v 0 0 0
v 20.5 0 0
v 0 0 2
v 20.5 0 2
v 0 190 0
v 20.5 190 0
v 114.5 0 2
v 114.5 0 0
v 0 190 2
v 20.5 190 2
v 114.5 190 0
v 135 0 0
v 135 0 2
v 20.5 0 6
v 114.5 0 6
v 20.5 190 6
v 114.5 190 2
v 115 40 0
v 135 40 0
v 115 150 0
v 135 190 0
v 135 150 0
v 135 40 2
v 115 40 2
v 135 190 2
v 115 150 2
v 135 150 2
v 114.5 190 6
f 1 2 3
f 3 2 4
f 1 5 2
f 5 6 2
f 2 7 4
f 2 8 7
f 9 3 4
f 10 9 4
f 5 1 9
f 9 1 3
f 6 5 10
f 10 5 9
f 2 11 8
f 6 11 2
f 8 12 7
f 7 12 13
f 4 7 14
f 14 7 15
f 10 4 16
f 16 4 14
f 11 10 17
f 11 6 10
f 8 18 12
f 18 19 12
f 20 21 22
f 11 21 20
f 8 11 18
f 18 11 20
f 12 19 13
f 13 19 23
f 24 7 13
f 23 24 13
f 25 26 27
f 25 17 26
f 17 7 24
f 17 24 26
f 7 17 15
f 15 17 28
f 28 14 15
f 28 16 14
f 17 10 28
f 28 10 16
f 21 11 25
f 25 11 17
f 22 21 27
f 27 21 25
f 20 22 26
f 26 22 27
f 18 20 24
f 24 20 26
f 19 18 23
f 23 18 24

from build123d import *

# Parameters (mm, degrees)
PAD_DEPTH    = 2
SKETCH004_W  = 94
SKETCH004_H  = 190
PAD001_DEPTH = 6


with BuildPart() as part:
    # Sketch001 → Pad (new body)
    with BuildSketch(Plane.XY):
        Polygon((0, 0), (135, 0), (135, 40), (115, 40), (115, 150), (135, 150), (135, 190), (0, 190), align=None)
    extrude(amount=PAD_DEPTH)

    # Sketch004 → Pad001 (join)
    with BuildSketch(Plane.XY):
        with Locations((67.5, 95)):
            Rectangle(SKETCH004_W, SKETCH004_H)
    extrude(amount=PAD001_DEPTH)


solid = part.part
